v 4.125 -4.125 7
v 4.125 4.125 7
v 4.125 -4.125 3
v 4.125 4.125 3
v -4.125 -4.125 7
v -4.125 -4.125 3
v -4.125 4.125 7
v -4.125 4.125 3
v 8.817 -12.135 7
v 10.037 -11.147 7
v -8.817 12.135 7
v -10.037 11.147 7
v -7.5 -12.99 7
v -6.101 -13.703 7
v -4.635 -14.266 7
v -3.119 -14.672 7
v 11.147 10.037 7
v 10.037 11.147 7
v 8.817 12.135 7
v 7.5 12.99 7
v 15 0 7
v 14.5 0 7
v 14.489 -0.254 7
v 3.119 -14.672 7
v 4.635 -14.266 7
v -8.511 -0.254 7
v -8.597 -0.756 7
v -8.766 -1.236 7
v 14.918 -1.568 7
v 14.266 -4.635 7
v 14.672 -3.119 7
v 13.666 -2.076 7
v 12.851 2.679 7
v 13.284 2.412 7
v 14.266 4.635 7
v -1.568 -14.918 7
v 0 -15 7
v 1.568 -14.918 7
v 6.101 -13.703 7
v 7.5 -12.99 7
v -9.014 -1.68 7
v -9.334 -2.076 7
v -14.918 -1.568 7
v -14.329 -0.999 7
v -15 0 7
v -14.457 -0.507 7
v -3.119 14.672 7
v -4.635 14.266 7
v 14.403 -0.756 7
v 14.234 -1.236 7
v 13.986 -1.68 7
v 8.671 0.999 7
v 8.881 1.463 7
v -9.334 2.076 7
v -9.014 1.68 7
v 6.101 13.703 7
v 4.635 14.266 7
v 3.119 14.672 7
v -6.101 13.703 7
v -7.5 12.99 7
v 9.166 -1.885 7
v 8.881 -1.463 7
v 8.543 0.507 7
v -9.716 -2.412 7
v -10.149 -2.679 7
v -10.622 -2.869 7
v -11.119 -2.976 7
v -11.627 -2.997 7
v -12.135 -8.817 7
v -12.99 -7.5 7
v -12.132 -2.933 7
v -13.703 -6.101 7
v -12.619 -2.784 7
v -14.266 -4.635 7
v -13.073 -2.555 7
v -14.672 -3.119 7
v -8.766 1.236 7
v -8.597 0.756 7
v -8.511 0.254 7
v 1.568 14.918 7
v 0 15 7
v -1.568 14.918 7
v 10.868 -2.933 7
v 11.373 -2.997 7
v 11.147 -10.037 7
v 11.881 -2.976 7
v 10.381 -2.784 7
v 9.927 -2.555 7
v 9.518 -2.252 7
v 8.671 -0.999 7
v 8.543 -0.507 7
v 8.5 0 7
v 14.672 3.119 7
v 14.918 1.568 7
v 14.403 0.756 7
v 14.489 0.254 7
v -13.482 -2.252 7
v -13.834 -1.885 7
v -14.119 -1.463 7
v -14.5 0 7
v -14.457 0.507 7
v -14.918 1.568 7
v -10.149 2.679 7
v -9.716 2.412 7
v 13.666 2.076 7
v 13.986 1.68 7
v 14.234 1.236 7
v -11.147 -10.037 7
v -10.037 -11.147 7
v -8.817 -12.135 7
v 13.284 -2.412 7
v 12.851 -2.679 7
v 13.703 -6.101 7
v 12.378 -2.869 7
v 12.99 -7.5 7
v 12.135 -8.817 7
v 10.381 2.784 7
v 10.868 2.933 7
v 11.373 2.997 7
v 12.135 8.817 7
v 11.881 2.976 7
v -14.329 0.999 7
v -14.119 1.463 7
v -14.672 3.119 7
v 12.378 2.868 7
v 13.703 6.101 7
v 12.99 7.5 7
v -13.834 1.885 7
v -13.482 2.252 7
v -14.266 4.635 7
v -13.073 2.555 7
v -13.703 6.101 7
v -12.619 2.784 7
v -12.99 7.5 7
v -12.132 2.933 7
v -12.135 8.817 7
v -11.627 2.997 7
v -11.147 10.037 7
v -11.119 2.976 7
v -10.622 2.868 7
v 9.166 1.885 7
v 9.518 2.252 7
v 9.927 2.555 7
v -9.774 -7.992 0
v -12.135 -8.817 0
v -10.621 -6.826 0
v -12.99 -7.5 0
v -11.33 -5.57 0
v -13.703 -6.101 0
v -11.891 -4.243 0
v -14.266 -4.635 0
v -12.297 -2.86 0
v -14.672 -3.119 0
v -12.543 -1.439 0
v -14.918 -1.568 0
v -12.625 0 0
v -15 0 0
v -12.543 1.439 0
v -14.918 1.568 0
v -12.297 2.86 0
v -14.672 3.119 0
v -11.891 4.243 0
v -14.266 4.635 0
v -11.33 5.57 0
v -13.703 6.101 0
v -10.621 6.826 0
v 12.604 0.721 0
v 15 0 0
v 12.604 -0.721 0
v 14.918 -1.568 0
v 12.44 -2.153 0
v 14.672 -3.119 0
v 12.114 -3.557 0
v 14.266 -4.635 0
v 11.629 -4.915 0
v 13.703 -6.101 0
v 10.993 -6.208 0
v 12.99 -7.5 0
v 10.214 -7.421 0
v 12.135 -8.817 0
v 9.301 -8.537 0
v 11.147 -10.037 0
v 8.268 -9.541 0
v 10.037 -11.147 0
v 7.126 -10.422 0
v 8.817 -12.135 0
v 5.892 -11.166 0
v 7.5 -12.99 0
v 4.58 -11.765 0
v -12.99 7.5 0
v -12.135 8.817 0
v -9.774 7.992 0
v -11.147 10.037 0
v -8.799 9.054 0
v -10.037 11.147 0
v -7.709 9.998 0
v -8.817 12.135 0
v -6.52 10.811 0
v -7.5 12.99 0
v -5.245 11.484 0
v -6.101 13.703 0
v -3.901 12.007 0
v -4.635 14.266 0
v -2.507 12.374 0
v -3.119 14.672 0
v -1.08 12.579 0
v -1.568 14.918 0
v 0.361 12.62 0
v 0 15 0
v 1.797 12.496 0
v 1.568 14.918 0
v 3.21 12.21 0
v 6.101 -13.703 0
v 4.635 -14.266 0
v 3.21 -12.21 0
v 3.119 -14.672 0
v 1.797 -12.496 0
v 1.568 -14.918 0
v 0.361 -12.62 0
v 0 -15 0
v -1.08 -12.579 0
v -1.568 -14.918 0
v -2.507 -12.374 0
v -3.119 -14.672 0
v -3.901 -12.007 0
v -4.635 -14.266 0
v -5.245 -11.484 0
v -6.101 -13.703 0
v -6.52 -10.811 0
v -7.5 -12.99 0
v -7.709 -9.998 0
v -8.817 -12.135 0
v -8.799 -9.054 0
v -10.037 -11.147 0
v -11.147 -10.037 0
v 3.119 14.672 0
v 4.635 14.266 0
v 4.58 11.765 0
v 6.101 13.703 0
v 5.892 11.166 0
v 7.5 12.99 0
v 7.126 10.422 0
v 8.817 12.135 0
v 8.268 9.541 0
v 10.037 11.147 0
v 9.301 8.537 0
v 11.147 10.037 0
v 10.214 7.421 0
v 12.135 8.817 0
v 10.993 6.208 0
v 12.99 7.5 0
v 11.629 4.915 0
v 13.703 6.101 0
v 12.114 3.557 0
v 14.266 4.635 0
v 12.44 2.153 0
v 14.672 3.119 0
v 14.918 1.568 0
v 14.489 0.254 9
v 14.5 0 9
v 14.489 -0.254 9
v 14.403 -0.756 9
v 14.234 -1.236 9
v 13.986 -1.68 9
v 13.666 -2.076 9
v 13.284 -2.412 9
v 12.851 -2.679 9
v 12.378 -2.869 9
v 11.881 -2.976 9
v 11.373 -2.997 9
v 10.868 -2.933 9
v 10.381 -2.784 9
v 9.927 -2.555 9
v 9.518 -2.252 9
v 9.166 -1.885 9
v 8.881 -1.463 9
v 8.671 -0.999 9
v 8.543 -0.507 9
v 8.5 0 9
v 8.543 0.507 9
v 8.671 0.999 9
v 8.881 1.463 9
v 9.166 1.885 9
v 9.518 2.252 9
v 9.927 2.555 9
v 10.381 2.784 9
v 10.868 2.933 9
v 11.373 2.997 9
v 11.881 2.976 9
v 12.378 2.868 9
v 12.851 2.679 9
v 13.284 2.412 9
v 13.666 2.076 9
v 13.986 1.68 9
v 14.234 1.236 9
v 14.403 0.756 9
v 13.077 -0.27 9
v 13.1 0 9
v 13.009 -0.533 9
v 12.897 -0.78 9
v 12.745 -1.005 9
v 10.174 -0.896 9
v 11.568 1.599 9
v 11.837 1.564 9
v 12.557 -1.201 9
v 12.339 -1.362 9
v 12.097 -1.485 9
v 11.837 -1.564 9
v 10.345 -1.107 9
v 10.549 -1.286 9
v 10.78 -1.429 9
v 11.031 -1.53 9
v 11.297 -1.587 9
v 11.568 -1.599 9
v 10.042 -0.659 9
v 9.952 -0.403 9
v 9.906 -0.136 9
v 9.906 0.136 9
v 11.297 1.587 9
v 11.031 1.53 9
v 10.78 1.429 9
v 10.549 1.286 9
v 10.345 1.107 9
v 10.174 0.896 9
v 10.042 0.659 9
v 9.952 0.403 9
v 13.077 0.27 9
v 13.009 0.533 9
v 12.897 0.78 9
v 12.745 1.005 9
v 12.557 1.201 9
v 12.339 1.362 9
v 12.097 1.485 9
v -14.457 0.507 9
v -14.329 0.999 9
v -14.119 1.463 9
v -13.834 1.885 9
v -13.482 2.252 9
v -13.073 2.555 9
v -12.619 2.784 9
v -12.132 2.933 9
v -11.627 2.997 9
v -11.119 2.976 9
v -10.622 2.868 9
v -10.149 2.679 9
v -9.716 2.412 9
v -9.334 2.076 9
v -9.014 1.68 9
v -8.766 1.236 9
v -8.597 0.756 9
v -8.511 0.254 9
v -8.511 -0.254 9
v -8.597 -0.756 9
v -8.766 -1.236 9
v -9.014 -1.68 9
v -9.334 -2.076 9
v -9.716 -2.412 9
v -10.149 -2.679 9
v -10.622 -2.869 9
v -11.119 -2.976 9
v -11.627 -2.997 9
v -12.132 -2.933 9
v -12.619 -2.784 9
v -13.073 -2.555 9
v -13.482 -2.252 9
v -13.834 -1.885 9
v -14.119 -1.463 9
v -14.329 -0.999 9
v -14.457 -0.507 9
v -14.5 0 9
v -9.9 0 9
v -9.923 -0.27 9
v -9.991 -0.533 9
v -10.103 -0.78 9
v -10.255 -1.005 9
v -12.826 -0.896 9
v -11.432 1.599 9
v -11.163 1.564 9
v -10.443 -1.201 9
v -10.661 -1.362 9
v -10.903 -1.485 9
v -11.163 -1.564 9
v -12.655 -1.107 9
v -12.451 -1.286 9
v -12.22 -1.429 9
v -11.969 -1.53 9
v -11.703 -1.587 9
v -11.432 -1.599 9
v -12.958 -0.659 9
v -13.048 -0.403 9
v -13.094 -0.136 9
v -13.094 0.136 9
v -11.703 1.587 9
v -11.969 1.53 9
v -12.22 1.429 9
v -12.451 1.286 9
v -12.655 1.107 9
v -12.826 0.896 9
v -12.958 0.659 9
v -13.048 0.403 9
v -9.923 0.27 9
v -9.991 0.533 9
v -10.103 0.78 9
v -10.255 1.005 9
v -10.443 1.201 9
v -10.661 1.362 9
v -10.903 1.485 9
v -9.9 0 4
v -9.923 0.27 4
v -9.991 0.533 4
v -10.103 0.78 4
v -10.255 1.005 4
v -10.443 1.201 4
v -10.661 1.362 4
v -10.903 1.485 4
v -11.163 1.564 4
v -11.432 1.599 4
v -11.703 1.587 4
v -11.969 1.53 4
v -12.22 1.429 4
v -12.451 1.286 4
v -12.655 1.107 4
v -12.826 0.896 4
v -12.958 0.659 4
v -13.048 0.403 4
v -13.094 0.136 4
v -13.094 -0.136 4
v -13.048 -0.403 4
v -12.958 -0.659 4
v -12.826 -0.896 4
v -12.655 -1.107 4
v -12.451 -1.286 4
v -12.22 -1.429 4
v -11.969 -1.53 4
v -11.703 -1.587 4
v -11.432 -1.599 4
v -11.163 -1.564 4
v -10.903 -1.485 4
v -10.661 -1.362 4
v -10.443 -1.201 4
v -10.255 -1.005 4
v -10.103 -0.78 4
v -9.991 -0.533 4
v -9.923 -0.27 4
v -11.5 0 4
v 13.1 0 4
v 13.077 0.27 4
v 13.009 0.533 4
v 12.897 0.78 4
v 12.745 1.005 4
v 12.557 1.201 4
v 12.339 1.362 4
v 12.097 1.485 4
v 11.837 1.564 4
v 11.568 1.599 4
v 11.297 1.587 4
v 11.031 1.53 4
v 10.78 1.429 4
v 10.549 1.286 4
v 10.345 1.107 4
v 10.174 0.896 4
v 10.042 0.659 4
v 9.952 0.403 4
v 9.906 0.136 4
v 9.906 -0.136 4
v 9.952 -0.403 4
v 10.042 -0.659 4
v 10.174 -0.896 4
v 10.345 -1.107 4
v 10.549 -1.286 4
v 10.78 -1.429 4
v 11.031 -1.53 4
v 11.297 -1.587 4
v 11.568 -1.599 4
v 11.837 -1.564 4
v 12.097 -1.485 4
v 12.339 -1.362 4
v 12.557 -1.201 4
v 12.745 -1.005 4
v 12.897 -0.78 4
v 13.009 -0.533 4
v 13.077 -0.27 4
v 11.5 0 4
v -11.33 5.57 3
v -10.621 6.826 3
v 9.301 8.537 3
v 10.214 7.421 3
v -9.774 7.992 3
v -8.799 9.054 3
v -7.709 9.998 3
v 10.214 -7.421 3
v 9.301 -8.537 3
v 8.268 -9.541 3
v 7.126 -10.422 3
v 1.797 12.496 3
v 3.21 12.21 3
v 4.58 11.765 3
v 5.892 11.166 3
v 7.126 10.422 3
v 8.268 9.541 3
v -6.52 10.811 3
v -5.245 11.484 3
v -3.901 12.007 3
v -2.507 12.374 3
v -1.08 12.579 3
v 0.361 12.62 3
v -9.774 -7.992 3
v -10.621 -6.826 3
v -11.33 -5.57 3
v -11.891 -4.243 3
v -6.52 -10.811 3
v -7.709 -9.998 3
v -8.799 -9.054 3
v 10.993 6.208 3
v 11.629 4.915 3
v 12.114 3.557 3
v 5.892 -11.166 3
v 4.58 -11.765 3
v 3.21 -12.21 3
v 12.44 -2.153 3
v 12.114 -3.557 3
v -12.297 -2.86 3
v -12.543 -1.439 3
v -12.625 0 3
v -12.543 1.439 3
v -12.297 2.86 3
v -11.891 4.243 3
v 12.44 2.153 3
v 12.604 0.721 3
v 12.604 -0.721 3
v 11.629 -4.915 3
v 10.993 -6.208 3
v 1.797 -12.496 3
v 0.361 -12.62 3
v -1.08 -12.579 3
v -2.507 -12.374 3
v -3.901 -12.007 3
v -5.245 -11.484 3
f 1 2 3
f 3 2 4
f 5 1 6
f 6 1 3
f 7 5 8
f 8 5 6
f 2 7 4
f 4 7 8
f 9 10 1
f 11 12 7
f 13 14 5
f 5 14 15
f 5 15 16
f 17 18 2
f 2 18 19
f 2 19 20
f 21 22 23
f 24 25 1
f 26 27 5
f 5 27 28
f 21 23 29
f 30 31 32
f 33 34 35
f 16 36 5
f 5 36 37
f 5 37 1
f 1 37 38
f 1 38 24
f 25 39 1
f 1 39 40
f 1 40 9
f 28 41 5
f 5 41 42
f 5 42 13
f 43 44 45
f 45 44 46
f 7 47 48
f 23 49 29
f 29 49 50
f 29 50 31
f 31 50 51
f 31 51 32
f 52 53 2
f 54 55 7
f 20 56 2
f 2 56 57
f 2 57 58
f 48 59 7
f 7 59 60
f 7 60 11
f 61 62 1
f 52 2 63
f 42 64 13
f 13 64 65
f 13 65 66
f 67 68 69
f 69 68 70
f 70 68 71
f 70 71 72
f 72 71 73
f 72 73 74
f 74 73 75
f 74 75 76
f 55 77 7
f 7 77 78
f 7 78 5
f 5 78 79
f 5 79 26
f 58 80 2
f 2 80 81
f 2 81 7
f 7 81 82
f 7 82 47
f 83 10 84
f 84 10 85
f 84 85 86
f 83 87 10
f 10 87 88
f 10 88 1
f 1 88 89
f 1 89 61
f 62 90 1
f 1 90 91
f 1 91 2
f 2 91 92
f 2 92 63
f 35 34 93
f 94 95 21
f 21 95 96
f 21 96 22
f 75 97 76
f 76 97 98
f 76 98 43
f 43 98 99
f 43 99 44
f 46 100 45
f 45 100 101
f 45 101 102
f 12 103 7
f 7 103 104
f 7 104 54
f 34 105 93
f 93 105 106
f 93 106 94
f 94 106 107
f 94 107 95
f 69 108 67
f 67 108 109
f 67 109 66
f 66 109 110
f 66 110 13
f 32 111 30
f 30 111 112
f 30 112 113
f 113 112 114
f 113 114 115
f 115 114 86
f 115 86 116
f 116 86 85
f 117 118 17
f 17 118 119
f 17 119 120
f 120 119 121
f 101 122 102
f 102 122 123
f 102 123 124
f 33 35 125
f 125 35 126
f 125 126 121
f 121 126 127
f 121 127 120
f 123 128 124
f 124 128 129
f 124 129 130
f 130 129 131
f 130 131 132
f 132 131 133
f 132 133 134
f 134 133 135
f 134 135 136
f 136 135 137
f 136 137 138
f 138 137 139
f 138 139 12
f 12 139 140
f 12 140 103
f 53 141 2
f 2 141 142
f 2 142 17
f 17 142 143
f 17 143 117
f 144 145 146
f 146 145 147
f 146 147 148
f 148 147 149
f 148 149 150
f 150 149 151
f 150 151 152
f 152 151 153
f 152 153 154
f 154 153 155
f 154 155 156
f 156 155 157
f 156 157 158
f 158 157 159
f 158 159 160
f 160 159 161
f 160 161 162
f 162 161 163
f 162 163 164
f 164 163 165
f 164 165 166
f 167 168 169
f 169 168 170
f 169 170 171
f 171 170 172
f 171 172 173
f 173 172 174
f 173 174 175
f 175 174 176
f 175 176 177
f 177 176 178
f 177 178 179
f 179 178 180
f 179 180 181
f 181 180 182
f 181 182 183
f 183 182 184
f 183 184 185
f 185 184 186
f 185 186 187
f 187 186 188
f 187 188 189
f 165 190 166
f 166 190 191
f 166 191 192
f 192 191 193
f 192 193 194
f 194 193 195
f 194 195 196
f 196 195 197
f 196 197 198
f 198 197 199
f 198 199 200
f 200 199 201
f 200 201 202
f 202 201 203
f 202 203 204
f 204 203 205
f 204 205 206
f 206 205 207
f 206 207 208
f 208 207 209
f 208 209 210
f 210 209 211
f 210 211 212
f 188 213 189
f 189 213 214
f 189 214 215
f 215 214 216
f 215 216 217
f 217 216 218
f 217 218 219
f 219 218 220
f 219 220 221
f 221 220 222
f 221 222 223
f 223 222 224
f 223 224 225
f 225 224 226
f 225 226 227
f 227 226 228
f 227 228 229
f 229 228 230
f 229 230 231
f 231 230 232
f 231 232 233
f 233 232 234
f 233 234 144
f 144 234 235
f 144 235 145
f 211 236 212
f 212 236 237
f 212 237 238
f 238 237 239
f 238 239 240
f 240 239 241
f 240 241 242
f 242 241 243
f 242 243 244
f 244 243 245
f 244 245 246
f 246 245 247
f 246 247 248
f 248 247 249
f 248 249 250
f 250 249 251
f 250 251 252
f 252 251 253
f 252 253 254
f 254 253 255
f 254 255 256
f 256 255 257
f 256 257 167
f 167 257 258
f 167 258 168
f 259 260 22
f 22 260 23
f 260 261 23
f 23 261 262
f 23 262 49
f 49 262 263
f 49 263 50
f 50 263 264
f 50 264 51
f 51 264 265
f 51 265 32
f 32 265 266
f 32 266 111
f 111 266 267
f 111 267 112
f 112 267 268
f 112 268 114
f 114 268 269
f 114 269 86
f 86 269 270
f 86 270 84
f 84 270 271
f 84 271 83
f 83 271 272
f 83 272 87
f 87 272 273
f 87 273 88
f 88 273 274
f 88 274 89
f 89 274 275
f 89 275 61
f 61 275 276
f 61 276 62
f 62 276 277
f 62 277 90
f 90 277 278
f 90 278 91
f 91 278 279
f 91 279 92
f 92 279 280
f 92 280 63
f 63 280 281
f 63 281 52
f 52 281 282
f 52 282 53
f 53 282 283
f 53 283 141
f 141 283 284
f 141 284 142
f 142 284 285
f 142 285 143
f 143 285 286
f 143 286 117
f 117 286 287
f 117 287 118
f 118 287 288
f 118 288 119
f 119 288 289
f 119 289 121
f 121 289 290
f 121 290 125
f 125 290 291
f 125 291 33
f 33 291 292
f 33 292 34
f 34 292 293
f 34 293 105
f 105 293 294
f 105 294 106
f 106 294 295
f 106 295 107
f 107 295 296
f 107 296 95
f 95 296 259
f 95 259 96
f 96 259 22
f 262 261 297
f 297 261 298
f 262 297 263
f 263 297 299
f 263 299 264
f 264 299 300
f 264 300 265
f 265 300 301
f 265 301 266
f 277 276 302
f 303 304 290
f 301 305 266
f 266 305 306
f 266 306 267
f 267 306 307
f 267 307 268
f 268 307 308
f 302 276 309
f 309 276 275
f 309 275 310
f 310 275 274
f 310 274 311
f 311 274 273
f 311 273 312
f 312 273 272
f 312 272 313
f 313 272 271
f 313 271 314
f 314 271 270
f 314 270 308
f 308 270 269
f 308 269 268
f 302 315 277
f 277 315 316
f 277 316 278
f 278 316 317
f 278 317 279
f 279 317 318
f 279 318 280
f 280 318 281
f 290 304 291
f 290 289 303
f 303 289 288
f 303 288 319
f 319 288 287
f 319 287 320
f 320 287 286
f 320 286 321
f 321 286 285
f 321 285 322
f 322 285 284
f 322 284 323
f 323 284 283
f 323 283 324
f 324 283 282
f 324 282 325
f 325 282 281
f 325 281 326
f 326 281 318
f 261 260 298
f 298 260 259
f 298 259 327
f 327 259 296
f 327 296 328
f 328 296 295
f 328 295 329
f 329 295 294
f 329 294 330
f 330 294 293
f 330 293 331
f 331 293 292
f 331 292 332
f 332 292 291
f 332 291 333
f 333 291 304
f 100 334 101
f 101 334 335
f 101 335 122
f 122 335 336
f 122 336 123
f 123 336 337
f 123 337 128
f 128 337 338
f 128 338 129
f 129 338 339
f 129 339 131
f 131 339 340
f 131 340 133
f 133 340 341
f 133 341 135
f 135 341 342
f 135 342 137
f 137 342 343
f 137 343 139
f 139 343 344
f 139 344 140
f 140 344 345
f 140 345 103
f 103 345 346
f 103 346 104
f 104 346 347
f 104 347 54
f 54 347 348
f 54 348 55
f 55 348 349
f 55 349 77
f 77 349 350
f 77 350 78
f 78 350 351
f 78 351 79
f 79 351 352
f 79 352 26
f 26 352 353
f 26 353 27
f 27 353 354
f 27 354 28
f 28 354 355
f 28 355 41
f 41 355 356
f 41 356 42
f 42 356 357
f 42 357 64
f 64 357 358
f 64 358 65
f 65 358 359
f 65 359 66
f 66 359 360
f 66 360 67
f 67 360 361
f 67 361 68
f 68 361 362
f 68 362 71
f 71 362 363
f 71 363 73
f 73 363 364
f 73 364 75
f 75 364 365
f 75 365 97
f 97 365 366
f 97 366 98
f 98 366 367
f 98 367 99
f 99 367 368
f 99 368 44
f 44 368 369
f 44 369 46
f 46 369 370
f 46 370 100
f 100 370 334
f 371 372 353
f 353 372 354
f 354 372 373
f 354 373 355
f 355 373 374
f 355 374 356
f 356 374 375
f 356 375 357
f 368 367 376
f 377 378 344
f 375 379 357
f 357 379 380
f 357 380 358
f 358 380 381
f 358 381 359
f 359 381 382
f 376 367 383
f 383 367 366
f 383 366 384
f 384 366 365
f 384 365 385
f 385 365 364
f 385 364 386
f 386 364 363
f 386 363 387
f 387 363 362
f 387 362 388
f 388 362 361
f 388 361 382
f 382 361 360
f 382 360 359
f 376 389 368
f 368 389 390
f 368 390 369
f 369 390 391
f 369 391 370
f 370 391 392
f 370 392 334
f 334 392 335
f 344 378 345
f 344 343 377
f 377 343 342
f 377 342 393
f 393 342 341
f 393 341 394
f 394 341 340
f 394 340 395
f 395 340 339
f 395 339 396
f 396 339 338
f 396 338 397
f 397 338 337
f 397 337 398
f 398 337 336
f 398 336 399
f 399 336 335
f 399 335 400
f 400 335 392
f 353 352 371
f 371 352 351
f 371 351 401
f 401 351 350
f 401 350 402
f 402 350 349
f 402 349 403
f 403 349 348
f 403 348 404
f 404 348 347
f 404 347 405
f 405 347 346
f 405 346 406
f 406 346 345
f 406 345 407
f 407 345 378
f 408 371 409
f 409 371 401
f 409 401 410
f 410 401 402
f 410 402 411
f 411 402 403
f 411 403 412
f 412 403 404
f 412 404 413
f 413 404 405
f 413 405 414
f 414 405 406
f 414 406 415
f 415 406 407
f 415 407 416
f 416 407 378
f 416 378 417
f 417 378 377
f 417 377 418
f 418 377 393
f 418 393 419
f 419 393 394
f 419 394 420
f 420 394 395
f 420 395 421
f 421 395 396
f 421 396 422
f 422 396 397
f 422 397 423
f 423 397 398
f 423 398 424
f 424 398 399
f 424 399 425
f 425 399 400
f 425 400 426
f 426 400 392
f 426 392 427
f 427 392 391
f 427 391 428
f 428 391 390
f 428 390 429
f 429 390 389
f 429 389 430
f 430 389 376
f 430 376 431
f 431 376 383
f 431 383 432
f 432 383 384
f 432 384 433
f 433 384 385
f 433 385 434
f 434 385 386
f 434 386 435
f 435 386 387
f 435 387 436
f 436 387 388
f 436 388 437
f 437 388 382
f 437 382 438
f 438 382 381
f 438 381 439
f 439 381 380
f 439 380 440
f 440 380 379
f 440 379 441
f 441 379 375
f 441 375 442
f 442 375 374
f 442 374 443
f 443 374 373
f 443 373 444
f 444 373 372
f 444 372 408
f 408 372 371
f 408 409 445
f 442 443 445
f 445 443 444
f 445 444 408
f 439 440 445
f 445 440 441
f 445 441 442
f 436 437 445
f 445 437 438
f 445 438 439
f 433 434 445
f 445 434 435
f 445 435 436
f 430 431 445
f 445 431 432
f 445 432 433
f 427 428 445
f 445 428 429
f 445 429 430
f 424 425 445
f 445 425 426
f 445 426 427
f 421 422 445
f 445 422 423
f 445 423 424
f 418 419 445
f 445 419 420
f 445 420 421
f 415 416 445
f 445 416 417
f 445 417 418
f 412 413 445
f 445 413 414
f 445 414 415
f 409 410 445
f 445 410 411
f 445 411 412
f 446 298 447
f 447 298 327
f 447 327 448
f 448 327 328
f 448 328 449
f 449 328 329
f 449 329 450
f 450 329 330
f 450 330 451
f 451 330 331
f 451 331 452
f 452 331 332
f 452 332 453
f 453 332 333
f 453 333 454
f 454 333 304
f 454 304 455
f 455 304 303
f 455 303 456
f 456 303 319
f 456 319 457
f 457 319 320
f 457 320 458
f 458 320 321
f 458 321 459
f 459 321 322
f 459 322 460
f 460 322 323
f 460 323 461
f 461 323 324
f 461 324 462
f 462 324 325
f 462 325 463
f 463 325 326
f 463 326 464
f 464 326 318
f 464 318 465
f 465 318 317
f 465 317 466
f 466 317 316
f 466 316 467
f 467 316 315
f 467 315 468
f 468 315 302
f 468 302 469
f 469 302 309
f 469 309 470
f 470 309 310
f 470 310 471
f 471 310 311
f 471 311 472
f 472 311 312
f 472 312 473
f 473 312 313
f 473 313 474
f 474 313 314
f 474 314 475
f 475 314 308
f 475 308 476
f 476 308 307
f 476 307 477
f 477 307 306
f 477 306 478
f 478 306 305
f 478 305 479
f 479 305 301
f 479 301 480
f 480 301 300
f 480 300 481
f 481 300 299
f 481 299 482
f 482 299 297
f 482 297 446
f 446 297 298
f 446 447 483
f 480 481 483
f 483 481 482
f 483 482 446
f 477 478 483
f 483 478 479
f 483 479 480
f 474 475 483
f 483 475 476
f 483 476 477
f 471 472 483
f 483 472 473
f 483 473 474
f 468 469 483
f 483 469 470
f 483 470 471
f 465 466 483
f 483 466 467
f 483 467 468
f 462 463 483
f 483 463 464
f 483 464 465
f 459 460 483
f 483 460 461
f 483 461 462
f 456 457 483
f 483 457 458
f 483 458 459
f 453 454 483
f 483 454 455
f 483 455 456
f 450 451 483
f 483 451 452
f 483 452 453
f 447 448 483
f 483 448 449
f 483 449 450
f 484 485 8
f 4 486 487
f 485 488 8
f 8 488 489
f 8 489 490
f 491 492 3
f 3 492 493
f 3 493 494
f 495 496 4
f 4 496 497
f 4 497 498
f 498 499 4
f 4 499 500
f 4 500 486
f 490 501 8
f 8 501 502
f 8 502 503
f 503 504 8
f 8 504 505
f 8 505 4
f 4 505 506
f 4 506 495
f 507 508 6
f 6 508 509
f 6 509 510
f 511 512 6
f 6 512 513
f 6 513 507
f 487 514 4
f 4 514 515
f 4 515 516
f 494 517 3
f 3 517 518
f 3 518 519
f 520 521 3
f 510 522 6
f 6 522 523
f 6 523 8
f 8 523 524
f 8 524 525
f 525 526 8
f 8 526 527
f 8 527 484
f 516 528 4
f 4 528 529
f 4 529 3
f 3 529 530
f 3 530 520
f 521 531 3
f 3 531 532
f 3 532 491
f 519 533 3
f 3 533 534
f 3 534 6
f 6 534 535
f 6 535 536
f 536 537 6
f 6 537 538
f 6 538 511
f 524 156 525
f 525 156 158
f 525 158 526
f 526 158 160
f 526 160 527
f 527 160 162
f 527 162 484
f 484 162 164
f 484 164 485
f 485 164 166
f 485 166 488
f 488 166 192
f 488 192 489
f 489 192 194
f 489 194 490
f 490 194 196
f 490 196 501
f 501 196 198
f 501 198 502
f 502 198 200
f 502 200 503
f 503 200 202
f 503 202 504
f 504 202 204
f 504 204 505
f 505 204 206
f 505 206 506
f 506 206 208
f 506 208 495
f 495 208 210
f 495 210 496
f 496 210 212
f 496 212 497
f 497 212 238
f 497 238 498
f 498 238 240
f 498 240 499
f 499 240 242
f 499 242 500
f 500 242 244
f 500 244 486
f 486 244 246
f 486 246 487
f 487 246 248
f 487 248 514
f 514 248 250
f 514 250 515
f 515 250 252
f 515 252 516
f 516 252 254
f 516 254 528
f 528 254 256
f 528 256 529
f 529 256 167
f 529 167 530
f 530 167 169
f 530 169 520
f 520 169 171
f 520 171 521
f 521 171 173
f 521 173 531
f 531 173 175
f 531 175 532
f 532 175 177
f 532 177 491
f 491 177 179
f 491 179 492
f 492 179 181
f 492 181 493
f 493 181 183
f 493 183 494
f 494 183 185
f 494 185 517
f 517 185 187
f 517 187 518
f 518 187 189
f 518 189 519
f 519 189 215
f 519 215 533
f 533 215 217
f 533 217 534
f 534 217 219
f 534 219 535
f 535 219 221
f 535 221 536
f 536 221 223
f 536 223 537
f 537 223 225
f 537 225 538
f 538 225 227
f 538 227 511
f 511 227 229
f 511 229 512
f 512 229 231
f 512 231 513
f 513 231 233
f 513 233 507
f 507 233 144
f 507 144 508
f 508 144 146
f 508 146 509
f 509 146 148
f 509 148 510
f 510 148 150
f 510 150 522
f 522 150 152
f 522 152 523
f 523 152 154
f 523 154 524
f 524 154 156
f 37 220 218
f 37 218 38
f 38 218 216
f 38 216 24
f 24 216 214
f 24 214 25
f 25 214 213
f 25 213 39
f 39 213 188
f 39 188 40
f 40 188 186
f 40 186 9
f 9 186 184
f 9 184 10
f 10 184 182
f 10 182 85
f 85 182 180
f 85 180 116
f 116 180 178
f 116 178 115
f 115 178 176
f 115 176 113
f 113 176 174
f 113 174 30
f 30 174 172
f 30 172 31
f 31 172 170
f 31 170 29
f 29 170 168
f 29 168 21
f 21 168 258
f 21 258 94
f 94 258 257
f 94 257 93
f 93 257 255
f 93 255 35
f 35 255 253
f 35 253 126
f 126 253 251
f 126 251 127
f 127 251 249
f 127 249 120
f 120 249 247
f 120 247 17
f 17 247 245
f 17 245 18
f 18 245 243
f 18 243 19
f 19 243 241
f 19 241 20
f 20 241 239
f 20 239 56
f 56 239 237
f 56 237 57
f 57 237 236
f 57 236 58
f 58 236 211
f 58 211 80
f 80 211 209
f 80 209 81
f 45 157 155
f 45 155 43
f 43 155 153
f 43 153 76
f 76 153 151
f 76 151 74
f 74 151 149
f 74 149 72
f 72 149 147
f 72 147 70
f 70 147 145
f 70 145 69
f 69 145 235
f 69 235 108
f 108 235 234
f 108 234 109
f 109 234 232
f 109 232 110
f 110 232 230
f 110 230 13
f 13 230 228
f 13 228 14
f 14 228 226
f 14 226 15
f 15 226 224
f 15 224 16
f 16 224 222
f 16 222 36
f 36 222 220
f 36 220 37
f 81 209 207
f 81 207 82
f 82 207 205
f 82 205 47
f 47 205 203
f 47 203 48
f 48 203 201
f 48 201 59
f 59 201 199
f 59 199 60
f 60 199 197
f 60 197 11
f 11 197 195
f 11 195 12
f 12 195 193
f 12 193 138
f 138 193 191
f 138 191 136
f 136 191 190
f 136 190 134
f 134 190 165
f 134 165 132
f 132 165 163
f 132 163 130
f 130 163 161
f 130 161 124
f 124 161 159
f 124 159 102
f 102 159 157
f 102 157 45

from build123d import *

# Parameters (mm, degrees)
SKETCH_1_W          = 30
SKETCH_1_H          = 30
EXTRUDE_1_DEPTH     = 7
SKETCH_2_W          = 8.25
SKETCH_2_H          = 8.25
CUT_EXTRUDE_1_DEPTH = 23.338307904
SKETCH_3_R          = 3
EXTRUDE_2_DEPTH     = 2
SKETCH_4_R          = 1.6
CUT_EXTRUDE_2_DEPTH = 5
SKETCH_5_R          = 12.625
CUT_EXTRUDE_3_DEPTH = 3
FILLET_1_R          = 15


with BuildPart() as part:
    # Эскиз1 → Бобышка-Вытянуть1 (new body)
    with BuildSketch(Plane.XY):
        Rectangle(SKETCH_1_W, SKETCH_1_H)
    extrude(amount=EXTRUDE_1_DEPTH)

    # Эскиз2 → Вырез-Вытянуть1 (cut, through all)
    with BuildSketch(Plane.XY.offset(7)):
        Rectangle(SKETCH_2_W, SKETCH_2_H)
    extrude(amount=-CUT_EXTRUDE_1_DEPTH, mode=Mode.SUBTRACT)

    # Эскиз3 → Бобышка-Вытянуть2 (add)
    with BuildSketch(Plane.XY.offset(7)):
        with Locations((11.5, 0)):
            Circle(SKETCH_3_R)
        with Locations(Location((-11.5, 0, 0), (0, 0, 180))):
            Circle(SKETCH_3_R)
    extrude(amount=EXTRUDE_2_DEPTH)

    # Эскиз4 → Вырез-Вытянуть2 (cut)
    with BuildSketch(Plane.XY.offset(9)):
        with Locations((-11.5, 0)):
            Circle(SKETCH_4_R)
        with Locations((11.5, 0)):
            Circle(SKETCH_4_R)
    extrude(amount=-CUT_EXTRUDE_2_DEPTH, mode=Mode.SUBTRACT)

    # Эскиз5 → Вырез-Вытянуть3 (cut)
    with BuildSketch(Plane(origin=(0, 0, 0), x_dir=(-1, 0, 0), z_dir=(0, 0, -1))):
        Circle(SKETCH_5_R)
    extrude(amount=-CUT_EXTRUDE_3_DEPTH, mode=Mode.SUBTRACT)

    # Скругление1
    fillet_1_edges = [part.edges().sort_by_distance(p)[0] for p in [
        (-15, 15, 3.5),
        (15, 15, 3.5),
        (15, -15, 3.5),
        (-15, -15, 3.5),
    ]]
    fillet(fillet_1_edges, radius=FILLET_1_R - 0.0001)  # a hair under: the kernel refuses the full size


solid = part.part
